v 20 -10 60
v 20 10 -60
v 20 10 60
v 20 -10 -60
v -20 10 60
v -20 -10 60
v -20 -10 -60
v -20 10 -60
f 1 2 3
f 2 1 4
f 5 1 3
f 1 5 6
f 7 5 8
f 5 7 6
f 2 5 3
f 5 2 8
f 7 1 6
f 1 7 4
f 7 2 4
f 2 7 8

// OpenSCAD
// Define the dimensions of the rectangular block
block_width = 20;  // Width of the block
block_height = 20; // Height of the block
block_length = 40; // Length of the block

// Define the spacing between blocks
block_spacing = 0; // Space between each block (set to 0 to eliminate gaps)

// Function to create a rectangular block
module rectangular_block() {
    cube([block_length, block_width, block_height], center = true);
}

// Stack the blocks based on the positional relationship
// Ensure blocks are perfectly aligned vertically and tightly stacked
translate([0, 0, block_height * 2.5 + block_spacing * 2.5]) rectangular_block(); // Layer 1
translate([0, 0, block_height * 1.5 + block_spacing * 1.5]) rectangular_block(); // Layer 2
translate([0, 0, block_height * 0.5 + block_spacing * 0.5]) rectangular_block(); // Layer 3
translate([0, 0, -block_height * 0.5 - block_spacing * 0.5]) rectangular_block(); // Layer 4
translate([0, 0, -block_height * 1.5 - block_spacing * 1.5]) rectangular_block(); // Layer 5
translate([0, 0, -block_height * 2.5 - block_spacing * 2.5]) rectangular_block(); // Layer 6
